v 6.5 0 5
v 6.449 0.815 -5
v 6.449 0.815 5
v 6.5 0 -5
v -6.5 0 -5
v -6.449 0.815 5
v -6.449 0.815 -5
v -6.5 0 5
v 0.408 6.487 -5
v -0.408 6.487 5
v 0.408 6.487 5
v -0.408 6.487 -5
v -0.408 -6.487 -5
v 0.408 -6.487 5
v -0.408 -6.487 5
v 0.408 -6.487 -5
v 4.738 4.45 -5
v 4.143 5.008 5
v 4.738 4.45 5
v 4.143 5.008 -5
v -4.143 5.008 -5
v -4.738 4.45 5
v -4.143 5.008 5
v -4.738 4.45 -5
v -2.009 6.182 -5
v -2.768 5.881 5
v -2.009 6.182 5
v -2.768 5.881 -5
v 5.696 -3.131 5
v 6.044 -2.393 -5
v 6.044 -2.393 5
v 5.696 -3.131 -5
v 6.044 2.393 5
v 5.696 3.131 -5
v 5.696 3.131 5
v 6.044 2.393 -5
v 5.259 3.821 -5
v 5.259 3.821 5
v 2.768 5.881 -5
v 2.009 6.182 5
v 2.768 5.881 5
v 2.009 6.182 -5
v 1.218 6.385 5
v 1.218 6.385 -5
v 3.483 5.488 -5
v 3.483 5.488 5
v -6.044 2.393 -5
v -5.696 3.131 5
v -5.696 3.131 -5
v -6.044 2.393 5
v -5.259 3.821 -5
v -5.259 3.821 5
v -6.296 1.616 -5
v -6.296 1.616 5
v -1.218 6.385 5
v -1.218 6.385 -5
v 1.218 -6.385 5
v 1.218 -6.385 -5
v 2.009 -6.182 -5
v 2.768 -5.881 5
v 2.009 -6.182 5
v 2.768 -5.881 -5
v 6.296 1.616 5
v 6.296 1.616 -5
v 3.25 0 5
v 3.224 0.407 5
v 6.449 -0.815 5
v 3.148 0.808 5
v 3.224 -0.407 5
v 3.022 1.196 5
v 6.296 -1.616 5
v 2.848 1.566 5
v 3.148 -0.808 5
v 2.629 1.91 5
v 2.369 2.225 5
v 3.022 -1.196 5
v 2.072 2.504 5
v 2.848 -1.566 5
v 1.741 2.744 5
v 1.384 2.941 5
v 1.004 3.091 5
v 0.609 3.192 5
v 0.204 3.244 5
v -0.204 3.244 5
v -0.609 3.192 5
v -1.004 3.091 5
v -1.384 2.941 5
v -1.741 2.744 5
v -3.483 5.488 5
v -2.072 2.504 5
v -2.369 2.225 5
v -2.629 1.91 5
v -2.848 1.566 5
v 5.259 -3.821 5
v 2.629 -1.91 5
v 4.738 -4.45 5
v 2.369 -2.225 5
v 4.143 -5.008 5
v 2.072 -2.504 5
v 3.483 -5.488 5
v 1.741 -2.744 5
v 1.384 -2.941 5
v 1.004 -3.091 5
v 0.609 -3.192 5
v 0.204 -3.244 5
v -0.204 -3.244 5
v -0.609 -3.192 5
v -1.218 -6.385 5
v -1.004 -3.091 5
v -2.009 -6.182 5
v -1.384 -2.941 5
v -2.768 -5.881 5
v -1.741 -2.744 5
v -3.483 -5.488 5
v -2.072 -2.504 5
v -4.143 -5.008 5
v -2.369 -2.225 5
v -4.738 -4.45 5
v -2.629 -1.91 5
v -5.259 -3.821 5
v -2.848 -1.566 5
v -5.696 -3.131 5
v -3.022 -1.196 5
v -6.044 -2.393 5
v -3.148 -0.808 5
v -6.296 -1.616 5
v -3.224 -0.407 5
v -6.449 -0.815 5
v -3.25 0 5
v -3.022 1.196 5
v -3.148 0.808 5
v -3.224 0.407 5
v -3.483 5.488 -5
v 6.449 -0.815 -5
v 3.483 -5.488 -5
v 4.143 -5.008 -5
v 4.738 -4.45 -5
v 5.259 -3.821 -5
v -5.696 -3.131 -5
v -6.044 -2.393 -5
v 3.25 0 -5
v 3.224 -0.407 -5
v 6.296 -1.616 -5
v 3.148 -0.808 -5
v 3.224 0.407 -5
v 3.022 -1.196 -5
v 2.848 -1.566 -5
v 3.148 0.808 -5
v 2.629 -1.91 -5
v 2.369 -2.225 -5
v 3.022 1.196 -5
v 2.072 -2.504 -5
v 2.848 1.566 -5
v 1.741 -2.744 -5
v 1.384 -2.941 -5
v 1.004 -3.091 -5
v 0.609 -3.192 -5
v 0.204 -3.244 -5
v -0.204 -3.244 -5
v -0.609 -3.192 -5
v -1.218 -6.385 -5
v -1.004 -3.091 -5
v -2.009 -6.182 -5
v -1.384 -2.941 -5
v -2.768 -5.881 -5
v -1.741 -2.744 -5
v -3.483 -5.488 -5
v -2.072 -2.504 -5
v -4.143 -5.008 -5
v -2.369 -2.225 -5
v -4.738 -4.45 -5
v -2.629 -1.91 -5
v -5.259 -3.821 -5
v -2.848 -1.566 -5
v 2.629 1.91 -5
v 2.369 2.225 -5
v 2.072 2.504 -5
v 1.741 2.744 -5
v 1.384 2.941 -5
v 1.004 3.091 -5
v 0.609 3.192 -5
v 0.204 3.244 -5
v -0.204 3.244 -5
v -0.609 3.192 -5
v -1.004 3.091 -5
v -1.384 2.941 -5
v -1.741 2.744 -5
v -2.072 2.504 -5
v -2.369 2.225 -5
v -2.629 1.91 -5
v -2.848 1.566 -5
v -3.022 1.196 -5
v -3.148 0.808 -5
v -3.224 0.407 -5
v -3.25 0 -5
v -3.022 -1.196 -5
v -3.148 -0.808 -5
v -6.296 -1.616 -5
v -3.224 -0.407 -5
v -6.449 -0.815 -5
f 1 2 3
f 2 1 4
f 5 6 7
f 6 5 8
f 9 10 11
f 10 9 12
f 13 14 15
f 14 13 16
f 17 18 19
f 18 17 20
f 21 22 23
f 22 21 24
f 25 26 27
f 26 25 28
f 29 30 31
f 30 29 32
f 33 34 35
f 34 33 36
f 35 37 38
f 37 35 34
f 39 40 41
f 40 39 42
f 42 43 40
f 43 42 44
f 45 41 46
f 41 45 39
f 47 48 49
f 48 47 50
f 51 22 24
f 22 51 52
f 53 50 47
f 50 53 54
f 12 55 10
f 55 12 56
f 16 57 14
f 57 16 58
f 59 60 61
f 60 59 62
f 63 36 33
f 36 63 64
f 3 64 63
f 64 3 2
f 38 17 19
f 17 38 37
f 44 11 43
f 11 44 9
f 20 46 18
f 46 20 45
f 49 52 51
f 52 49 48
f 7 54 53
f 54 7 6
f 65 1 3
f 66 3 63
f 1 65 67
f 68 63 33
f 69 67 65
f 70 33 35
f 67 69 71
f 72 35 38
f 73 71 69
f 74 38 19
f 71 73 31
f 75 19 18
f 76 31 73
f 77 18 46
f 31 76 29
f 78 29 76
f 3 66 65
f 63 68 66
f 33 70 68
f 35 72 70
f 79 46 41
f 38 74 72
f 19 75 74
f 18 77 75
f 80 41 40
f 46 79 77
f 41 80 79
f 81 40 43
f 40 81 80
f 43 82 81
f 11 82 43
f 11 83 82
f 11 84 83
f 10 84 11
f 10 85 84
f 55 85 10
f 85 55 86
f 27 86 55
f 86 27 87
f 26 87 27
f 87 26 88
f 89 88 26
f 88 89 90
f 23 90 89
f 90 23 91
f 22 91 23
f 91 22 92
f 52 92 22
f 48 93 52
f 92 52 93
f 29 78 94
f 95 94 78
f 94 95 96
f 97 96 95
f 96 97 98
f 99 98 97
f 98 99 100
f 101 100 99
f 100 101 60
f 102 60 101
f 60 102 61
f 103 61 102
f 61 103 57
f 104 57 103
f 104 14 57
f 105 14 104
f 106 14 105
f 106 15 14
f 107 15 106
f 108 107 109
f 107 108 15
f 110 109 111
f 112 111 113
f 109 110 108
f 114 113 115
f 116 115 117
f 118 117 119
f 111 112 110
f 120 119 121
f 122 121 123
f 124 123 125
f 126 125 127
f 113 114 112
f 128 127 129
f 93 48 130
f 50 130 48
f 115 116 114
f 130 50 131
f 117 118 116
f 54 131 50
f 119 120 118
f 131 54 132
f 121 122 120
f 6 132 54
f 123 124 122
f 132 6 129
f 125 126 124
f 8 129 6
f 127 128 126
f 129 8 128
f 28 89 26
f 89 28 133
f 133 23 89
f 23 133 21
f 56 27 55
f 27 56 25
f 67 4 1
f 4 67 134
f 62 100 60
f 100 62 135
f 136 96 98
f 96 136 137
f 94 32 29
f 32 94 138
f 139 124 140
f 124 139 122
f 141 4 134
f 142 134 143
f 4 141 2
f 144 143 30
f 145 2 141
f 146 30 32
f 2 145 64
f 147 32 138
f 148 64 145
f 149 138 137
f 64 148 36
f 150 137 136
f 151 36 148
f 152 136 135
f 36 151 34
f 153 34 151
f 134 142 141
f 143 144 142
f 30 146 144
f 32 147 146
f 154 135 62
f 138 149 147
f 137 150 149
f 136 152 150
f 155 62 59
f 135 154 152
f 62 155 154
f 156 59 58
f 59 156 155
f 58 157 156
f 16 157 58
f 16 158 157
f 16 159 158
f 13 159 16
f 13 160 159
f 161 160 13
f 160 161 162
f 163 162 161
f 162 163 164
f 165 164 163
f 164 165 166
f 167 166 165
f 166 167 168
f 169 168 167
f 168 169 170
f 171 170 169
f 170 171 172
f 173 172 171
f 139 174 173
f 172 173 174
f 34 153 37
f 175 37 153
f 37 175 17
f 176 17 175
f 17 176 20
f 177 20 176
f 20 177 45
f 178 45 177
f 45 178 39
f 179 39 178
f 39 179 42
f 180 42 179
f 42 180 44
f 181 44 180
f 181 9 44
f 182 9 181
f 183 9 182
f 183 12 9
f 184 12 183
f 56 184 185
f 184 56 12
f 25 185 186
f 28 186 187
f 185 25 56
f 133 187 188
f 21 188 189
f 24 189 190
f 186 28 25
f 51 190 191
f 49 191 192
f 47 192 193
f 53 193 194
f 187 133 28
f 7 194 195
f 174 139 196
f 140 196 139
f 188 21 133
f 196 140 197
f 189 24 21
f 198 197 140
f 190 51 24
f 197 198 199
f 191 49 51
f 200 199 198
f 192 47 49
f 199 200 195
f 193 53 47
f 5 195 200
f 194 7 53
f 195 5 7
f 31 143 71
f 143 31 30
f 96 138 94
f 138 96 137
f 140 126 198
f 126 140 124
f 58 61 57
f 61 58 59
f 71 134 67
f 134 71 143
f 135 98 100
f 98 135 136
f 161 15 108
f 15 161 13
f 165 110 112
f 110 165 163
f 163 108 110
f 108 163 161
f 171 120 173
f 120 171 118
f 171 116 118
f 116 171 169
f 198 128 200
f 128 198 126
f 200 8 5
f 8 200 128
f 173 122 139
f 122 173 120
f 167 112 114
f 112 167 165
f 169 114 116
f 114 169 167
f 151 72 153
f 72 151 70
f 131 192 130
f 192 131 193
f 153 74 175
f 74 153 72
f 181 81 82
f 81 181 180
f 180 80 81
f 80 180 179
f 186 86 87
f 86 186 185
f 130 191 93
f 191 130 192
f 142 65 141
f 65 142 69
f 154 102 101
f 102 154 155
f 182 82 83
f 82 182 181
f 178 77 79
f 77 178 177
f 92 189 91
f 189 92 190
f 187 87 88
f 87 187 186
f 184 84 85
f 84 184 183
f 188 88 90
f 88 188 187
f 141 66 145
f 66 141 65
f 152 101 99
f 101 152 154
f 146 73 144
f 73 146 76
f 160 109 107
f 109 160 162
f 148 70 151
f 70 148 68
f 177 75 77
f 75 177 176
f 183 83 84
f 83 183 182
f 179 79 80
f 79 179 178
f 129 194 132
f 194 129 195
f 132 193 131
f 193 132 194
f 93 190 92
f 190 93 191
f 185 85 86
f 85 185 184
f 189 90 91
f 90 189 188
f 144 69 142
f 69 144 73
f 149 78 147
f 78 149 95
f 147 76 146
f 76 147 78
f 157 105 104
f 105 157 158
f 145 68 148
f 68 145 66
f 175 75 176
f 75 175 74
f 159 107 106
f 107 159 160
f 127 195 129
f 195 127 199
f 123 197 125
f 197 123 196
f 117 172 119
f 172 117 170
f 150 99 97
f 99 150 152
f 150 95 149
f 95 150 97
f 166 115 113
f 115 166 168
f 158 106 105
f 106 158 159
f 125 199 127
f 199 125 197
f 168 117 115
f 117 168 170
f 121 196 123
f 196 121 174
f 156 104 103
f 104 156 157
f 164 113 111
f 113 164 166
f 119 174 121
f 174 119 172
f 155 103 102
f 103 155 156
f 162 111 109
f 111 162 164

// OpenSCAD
$fn = 50;


difference() {
	union() {
		translate(v = [0, 0, -5.0000000000]) {
			cylinder(h = 10, r = 6.5000000000);
		}
	}
	union() {
		translate(v = [0, 0, -100.0000000000]) {
			cylinder(h = 200, r = 3.2500000000);
		}
	}
}
